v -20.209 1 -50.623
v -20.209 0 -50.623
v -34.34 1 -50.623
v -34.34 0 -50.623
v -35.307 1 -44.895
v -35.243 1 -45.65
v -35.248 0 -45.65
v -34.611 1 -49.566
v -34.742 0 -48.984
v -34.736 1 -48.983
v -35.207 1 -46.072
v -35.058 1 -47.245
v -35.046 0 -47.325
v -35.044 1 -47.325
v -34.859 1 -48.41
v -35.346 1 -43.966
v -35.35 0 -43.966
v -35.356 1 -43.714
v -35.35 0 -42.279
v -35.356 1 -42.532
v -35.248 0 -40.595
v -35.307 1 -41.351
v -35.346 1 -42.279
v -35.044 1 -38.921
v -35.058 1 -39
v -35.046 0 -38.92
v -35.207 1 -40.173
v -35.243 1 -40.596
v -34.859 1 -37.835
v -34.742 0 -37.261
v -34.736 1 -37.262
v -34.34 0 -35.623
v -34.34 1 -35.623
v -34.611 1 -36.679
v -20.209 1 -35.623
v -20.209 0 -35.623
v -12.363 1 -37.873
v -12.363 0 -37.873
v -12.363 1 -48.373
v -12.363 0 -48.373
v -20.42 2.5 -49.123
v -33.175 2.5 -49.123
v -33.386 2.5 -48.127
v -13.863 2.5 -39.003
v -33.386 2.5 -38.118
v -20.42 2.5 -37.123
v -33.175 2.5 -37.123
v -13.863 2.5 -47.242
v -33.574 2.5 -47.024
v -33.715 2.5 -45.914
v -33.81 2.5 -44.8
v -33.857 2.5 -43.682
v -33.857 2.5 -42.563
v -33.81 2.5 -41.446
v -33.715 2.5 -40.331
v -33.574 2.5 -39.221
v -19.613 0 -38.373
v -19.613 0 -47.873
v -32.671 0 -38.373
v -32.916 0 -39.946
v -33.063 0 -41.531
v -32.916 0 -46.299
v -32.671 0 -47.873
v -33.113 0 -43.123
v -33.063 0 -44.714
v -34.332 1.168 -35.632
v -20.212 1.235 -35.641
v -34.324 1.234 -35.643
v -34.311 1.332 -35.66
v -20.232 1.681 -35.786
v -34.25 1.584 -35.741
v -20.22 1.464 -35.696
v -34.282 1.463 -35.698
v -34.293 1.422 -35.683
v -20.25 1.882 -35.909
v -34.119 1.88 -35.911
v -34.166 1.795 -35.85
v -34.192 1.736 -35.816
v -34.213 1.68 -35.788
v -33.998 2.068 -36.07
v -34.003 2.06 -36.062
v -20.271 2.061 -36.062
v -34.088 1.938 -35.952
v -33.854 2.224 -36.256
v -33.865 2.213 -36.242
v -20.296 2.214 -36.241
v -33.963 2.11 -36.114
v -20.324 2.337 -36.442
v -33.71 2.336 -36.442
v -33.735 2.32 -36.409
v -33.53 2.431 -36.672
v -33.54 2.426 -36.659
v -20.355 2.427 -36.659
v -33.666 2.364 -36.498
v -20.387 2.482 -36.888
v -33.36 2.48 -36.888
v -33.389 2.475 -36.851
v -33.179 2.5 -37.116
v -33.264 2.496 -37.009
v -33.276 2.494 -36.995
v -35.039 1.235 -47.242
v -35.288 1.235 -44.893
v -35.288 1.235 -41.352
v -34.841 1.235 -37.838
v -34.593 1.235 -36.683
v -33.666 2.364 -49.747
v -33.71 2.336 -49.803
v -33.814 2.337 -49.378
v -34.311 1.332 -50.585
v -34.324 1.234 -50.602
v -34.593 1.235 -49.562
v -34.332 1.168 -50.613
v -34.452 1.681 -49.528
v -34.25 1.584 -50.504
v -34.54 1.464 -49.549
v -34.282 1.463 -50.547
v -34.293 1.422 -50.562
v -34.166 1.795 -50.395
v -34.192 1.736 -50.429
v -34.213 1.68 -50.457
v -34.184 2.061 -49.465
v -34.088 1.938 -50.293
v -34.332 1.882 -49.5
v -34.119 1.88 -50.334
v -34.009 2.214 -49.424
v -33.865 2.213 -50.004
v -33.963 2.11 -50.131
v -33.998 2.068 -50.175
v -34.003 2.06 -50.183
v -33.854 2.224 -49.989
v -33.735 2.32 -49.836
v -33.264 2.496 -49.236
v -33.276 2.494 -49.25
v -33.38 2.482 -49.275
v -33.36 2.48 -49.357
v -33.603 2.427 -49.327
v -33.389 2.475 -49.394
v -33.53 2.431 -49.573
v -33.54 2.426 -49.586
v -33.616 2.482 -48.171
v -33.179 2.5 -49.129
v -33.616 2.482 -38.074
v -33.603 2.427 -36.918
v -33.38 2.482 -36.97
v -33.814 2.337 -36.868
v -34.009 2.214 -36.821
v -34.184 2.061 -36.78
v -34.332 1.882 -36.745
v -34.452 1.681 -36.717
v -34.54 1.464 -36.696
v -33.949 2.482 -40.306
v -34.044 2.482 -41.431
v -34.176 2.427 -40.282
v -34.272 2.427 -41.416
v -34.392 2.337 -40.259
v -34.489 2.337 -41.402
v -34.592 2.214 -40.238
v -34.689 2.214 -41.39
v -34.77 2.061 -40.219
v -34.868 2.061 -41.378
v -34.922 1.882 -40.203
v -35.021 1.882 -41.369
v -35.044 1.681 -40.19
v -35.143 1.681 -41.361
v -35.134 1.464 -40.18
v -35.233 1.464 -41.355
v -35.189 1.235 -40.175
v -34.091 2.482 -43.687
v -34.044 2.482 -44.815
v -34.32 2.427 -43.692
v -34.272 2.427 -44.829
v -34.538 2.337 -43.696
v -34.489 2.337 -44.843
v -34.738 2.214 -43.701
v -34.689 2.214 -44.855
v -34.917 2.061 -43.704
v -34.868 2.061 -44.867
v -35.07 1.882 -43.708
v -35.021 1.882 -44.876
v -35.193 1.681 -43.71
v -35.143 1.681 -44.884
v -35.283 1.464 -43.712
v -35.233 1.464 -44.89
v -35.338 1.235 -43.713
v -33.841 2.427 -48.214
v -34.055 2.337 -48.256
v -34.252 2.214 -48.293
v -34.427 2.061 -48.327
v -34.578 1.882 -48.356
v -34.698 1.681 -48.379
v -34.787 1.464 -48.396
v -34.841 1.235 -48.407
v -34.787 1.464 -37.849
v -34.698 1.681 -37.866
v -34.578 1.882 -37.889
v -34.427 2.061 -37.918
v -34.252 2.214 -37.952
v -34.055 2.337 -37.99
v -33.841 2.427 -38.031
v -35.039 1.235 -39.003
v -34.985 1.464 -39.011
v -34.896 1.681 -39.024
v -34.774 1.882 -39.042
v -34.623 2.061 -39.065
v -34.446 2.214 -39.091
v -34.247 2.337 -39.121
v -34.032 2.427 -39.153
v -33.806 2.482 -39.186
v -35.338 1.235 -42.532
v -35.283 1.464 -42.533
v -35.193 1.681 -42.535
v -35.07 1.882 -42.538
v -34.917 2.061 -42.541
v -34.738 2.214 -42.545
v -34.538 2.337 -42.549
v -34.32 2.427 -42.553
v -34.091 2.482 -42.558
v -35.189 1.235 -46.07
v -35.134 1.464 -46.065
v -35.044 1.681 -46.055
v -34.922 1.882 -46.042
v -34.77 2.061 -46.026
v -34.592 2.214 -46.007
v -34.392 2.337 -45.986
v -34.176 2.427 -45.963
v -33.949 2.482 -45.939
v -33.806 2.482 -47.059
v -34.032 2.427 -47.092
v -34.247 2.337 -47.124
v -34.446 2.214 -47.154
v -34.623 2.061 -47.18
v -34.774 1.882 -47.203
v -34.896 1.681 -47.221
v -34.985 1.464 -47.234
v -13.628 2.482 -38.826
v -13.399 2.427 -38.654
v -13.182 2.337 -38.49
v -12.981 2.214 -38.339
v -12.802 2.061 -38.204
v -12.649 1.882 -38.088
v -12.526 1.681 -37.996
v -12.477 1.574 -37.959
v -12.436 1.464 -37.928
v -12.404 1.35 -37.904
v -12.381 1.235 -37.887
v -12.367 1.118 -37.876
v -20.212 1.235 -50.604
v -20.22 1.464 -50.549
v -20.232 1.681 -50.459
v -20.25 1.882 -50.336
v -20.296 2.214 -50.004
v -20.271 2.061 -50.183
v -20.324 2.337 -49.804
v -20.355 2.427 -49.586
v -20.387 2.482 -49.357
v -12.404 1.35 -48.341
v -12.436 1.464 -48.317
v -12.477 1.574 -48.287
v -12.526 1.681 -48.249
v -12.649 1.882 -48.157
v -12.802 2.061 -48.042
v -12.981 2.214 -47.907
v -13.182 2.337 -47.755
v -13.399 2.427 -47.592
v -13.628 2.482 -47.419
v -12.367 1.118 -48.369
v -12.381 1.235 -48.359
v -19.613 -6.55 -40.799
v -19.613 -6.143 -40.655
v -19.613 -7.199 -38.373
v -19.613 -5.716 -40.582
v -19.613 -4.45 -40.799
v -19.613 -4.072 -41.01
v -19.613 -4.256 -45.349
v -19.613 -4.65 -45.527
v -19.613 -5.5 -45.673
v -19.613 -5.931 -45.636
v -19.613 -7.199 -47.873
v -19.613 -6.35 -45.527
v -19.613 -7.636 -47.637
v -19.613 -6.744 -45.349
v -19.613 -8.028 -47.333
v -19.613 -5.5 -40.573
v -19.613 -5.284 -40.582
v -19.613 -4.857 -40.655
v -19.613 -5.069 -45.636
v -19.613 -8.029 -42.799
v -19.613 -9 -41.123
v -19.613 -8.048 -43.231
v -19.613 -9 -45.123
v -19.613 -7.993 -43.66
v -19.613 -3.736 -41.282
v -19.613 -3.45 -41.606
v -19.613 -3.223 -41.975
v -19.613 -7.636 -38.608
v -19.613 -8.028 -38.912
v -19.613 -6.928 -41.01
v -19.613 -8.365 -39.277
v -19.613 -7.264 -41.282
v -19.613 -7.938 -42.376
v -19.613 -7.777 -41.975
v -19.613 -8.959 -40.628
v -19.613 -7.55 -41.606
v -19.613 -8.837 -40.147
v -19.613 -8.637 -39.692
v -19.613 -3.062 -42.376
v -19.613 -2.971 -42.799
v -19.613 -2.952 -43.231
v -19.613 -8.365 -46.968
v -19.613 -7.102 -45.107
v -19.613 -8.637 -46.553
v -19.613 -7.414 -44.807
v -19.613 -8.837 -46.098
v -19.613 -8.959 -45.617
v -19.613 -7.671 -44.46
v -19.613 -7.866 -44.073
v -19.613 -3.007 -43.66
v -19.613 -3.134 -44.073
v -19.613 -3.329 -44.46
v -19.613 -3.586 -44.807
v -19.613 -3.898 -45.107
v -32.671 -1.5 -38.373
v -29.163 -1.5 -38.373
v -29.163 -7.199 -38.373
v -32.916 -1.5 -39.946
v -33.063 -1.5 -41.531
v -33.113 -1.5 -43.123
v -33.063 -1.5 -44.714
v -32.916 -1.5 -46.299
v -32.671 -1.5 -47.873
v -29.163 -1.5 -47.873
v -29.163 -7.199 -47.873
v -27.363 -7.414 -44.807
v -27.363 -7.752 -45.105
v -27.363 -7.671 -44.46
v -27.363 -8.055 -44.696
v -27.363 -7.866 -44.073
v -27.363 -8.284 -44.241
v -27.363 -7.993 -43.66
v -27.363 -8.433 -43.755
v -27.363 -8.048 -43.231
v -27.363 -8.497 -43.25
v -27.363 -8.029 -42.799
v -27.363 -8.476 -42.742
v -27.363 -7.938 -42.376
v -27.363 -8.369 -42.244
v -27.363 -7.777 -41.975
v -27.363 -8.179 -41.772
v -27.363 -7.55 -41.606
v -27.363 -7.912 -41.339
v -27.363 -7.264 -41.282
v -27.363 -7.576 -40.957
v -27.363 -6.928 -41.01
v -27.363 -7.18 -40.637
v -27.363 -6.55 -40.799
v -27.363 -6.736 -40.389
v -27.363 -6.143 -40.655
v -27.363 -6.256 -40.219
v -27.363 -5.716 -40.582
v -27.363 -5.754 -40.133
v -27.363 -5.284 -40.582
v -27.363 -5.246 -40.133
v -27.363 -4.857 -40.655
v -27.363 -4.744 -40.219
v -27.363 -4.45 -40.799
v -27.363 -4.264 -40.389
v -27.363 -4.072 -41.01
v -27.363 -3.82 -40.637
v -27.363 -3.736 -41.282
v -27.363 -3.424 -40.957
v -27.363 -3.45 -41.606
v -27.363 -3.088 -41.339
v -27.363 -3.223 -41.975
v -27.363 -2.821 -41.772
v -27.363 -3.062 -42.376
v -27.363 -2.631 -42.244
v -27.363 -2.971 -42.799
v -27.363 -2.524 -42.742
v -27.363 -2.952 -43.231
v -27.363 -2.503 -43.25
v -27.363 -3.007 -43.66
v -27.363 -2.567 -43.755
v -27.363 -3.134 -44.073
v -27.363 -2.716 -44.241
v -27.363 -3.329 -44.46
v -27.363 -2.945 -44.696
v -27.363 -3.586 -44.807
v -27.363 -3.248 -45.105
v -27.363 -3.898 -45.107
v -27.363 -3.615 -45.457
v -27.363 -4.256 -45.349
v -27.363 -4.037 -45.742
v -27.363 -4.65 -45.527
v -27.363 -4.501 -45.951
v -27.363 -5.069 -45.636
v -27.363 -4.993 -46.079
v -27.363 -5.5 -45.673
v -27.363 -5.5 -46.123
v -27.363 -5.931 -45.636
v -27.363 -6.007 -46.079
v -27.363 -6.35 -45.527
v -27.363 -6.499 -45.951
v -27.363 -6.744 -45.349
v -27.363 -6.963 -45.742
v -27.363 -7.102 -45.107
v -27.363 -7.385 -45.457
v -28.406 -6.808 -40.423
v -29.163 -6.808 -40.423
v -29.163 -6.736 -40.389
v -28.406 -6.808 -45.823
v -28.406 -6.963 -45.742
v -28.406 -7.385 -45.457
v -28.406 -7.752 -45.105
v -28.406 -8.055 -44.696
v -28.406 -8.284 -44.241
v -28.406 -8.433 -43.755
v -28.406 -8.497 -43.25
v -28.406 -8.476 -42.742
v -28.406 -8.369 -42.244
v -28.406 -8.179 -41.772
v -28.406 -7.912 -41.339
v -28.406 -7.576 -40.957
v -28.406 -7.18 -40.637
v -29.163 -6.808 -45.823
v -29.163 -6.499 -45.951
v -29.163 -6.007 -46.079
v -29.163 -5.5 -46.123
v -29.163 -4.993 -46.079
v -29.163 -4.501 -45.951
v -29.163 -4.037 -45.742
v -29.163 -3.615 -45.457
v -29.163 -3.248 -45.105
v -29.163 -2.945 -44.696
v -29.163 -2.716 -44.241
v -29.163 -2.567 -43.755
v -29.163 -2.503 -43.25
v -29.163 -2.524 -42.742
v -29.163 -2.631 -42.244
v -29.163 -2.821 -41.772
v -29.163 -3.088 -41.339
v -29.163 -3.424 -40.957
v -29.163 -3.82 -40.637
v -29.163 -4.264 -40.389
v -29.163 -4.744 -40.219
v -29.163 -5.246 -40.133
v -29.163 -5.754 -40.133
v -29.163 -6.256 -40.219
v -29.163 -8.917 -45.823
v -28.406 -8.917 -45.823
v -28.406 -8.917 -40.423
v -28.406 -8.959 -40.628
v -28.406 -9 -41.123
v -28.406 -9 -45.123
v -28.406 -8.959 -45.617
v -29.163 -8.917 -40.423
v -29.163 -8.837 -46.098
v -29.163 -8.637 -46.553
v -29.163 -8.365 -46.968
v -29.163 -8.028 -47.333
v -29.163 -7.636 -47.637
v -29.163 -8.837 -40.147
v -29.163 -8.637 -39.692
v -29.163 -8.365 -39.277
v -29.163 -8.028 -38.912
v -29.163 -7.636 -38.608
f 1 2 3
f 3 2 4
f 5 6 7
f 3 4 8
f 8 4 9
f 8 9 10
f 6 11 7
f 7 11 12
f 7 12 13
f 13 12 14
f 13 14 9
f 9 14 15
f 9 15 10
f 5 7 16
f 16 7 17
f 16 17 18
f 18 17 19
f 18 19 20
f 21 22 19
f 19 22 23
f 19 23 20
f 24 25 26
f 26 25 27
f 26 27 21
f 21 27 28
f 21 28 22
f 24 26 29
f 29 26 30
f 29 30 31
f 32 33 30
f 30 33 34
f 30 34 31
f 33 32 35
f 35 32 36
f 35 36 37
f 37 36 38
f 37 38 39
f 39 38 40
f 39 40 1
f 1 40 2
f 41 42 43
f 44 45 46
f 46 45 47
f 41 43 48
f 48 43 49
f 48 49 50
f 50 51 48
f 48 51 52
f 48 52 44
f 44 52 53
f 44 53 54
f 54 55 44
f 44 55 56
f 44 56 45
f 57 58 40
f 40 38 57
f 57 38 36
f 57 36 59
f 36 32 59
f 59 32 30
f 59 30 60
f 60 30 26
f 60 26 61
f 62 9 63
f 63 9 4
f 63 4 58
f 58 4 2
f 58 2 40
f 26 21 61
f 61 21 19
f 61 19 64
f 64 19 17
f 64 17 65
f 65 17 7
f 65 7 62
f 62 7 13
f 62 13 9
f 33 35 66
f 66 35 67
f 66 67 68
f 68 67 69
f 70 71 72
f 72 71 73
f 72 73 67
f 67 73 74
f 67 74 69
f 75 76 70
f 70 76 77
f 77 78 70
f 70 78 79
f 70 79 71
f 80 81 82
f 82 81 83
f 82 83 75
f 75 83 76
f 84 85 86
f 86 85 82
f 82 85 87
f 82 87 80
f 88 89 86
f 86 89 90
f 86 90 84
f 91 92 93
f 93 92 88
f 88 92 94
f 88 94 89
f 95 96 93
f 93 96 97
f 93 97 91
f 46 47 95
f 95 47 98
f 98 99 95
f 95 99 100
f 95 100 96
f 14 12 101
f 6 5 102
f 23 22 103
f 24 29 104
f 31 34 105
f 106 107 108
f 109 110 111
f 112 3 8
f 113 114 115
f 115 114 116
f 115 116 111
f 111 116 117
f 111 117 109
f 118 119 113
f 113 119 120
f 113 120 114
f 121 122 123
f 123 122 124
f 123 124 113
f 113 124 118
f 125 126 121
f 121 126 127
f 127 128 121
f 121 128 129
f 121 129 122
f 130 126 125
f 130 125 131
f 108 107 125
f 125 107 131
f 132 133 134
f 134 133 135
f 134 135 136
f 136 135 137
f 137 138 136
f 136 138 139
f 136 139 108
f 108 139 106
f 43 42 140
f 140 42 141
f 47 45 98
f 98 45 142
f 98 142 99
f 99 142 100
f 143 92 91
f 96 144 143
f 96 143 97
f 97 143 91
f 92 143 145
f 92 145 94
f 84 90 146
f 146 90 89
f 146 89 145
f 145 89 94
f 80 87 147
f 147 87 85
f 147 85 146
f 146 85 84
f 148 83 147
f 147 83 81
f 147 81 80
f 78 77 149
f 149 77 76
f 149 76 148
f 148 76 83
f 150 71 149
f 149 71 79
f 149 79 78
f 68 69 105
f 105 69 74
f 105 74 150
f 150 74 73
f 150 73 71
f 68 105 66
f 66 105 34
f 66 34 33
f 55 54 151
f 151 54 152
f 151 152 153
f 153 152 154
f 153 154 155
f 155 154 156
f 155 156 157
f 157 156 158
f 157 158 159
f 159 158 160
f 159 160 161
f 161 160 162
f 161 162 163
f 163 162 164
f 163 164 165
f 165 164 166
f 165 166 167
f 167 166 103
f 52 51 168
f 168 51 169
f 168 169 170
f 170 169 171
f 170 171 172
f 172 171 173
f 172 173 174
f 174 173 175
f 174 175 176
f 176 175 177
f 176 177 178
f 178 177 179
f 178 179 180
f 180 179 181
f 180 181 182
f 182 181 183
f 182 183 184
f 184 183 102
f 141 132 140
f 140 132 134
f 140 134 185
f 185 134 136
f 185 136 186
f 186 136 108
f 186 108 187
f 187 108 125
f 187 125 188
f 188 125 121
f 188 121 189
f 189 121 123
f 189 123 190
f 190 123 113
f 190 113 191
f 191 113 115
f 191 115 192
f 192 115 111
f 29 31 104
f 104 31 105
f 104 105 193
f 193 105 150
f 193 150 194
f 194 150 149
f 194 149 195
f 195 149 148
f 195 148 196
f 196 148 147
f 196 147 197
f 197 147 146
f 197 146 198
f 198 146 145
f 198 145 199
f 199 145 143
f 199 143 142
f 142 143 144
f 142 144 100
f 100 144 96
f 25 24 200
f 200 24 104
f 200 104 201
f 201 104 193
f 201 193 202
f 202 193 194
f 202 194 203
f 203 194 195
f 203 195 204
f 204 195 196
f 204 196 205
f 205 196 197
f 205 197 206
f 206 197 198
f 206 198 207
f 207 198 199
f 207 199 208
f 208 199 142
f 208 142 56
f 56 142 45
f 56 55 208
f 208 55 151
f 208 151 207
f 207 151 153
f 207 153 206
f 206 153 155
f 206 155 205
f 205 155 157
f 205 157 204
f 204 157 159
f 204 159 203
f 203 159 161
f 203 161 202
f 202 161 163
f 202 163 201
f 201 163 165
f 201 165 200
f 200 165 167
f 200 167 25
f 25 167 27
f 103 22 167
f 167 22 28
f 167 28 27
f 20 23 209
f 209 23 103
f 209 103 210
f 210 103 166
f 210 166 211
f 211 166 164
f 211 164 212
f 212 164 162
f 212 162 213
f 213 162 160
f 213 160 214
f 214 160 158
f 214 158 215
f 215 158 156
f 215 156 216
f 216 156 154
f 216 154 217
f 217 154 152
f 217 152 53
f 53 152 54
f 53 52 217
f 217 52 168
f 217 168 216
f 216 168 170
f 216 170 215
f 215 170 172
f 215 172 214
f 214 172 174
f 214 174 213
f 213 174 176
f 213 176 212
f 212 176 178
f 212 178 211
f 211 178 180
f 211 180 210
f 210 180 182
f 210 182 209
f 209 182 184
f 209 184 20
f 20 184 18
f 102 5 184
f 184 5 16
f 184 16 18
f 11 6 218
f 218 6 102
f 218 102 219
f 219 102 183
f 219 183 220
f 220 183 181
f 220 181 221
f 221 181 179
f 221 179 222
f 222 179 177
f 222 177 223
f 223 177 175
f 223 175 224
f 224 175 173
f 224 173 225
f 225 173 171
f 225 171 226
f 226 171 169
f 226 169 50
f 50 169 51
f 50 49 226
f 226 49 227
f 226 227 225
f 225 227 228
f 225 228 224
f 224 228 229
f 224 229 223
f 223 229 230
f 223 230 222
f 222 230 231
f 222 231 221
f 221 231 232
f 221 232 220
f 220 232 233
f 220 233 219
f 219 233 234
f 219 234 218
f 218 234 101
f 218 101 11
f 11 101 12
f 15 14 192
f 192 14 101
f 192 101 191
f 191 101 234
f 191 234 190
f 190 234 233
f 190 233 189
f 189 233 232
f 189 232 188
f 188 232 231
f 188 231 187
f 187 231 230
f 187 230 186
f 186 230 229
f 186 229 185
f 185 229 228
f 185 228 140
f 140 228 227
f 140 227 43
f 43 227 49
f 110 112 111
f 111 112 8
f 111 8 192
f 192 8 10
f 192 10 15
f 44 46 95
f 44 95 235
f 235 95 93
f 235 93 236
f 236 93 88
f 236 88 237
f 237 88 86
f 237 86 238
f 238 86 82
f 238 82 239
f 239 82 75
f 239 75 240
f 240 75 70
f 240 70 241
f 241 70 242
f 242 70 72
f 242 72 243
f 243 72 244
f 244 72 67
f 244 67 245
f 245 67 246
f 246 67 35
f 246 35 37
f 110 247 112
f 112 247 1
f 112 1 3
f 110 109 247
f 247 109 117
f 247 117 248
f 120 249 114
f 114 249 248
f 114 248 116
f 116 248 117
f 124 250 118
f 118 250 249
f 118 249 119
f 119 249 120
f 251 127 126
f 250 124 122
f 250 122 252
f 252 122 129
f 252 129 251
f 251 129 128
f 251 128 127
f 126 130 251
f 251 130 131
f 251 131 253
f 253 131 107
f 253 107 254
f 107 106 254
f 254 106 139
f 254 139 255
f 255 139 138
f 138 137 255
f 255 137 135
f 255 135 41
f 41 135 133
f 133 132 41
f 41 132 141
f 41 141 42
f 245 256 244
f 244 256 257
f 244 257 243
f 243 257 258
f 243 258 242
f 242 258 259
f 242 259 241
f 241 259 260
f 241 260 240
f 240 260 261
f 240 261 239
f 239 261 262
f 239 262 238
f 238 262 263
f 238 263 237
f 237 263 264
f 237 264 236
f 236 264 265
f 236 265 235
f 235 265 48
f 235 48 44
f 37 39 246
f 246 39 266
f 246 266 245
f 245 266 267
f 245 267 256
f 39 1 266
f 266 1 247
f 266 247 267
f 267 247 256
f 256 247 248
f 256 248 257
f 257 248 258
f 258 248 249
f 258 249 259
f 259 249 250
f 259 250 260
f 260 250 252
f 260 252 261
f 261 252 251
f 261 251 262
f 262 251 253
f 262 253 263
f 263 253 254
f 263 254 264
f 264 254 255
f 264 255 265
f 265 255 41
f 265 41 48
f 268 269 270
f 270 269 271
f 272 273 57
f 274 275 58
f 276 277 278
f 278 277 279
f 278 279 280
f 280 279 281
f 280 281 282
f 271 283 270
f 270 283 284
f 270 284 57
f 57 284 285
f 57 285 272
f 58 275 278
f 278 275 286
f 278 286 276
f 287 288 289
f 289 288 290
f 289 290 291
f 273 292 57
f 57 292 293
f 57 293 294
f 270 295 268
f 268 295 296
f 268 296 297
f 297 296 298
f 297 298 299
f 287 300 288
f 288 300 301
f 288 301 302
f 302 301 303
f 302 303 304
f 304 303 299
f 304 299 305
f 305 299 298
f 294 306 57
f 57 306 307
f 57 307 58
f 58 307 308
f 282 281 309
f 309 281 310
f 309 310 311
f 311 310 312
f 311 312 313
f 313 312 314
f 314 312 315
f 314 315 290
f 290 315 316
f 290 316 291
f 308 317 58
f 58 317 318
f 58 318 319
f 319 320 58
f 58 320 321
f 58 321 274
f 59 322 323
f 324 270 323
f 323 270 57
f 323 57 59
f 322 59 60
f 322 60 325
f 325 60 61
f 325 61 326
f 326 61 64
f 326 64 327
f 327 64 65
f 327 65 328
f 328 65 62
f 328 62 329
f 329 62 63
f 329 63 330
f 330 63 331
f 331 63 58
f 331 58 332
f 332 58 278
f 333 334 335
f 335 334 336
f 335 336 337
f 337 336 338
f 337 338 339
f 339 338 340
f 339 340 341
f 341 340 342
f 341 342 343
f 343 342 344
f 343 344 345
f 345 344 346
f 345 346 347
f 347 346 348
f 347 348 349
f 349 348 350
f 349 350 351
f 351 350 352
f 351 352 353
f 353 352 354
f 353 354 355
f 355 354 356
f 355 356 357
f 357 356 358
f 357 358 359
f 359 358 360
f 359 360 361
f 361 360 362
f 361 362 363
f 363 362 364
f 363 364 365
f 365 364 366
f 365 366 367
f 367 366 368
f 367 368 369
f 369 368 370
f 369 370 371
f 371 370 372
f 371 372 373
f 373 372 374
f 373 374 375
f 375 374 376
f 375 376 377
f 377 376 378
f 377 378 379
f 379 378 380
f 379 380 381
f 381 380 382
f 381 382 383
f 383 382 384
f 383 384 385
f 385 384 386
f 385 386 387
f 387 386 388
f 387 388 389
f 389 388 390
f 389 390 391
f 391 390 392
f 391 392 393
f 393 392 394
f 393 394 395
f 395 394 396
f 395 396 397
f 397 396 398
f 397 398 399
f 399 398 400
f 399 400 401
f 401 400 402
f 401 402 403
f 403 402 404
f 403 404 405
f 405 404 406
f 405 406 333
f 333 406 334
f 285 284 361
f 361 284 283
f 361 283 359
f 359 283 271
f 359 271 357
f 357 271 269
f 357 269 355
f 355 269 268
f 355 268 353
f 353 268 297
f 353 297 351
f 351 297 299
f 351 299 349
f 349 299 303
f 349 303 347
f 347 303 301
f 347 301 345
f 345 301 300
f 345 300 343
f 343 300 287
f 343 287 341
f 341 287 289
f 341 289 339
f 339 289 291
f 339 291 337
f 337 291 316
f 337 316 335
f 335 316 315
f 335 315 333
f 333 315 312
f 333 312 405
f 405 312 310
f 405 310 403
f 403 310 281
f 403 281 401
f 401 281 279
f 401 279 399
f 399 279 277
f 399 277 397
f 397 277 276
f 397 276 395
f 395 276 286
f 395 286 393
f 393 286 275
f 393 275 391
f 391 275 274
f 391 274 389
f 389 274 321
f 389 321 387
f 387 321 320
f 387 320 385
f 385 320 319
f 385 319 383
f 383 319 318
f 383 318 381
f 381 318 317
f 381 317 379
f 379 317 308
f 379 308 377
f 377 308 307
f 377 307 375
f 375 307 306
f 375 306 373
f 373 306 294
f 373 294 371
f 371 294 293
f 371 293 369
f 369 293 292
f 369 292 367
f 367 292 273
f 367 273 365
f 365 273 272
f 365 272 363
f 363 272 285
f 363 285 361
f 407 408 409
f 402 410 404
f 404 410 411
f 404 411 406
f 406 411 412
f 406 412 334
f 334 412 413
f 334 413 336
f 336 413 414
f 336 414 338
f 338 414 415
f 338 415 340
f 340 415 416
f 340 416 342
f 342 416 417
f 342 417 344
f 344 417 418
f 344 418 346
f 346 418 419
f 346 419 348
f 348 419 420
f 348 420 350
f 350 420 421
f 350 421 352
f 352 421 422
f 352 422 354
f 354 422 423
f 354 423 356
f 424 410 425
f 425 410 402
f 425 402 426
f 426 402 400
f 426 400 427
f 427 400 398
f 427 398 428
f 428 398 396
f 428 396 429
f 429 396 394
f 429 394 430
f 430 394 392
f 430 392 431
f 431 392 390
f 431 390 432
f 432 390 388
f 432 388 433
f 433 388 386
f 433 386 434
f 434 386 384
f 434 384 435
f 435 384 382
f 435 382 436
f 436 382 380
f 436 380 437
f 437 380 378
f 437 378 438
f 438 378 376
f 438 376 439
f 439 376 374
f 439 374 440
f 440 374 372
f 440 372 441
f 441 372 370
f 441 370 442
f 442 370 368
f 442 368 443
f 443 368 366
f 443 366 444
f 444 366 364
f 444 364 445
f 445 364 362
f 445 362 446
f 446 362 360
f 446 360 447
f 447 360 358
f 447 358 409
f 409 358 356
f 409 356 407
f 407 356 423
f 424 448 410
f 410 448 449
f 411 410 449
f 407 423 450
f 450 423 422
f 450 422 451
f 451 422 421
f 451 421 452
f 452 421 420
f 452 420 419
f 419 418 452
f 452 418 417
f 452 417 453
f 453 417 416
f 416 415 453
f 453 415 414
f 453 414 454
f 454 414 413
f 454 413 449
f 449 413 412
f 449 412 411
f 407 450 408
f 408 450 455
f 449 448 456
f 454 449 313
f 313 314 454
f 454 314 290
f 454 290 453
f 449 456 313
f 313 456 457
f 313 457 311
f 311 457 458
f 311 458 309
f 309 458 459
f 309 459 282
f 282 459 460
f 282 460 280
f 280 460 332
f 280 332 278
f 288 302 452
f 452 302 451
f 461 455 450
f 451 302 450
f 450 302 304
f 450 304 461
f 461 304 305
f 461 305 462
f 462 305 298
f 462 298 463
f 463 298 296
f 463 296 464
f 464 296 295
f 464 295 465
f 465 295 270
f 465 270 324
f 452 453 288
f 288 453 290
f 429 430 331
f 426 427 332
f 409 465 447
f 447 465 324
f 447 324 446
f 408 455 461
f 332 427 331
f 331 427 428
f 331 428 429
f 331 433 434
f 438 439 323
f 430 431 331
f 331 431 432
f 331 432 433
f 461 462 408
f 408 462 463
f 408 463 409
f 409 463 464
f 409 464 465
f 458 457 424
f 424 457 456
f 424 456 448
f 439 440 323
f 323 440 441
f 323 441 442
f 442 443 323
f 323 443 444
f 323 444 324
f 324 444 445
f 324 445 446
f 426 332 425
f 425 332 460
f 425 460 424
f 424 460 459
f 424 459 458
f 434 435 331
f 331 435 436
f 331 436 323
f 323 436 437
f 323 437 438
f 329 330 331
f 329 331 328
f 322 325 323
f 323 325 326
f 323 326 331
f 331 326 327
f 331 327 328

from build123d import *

# Parameters (mm, degrees)
BOSS_EXTRUDE1_DEPTH      = 2.5
BOSS_EXTRUDE2_DEPTH      = 1.5
BOSS_EXTRUDE2_DEPTH_BACK = 1.5
FILLET1_R                = 1.5
SKETCH5_W                = 9.8
SKETCH5_H                = 10
BOSS_EXTRUDE3_DEPTH      = 7.5
SKETCH6_R                = 2.55
CUT_EXTRUDE1_DEPTH       = 8
FILLET2_R                = 3
SKETCH8_R                = 3
SKETCH8_R_2              = 2.6
BOSS_EXTRUDE4_DEPTH      = 0.8
SKETCH9_W                = 0.75667274
SKETCH9_H                = 5.4
CUT_EXTRUDE3_DEPTH       = 3
SKETCH10_R               = 3
CUT_EXTRUDE4_DEPTH       = 3
CUT_EXTRUDE5_DEPTH       = 10


with BuildPart() as part:
    # Sketch1 → Boss-Extrude1 (new body)
    with BuildSketch(Plane(origin=(0, 0, 0), x_dir=(1, 0, 0), z_dir=(0, 1, 0))):
        with BuildLine():
            Line((-20.209371097, 50.622586501), (-32.257467167, 50.622586501))
            ThreePointArc((-32.257467167, 50.622586501), (-33.362688598, 43.122586501), (-32.257467167, 35.622586501))
            Line((-32.257467167, 35.622586501), (-20.209371097, 35.622586501))
            Line((-20.209371097, 35.622586501), (-12.362688598, 37.872586501))
            Line((-12.362688598, 37.872586501), (-12.362688598, 48.372586501))
            Line((-12.362688598, 48.372586501), (-20.209371097, 50.622586501))
        make_face()
        with BuildLine():
            Line((-32.257467167, 50.622586501), (-34.339530518, 50.622586501))
            ThreePointArc((-34.339530518, 50.622586501), (-35.362688598, 43.122586501), (-34.339530518, 35.622586501))
            Line((-34.339530518, 35.622586501), (-32.257467167, 35.622586501))
            ThreePointArc((-32.257467167, 35.622586501), (-33.362688598, 43.122586501), (-32.257467167, 50.622586501))
        make_face()
    extrude(amount=BOSS_EXTRUDE1_DEPTH)

    # Sketch4 → Boss-Extrude2 (add, two sides)
    with BuildSketch(Plane.XZ) as boss_extrude2_sk:
        with BuildLine():
            Line((-19.362688598, -38.122586501), (-32.877390242, -38.122586501))
            ThreePointArc((-32.877390242, -38.122586501), (-33.362688598, -43.122586501), (-32.877390242, -48.122586501))
            Line((-32.877390242, -48.122586501), (-19.362688598, -48.122586501))
            Line((-19.362688598, -48.122586501), (-19.362688598, -38.122586501))
        make_face()
    extrude(amount=BOSS_EXTRUDE2_DEPTH)
    extrude(boss_extrude2_sk.sketch, amount=-BOSS_EXTRUDE2_DEPTH_BACK)

    # Fillet1
    fillet1_edges = [part.edges().sort_by_distance(p)[0] for p in [
        (-27.274450808, 2.5, -35.622586501),
        (-16.286029847, 2.5, -36.747586501),
        (-12.362688598, 2.5, -43.122586501),
        (-16.286029847, 2.5, -49.497586501),
        (-27.274450808, 2.5, -50.622586501),
        (-35.362688598, 2.5, -43.122586501),
    ]]
    fillet(fillet1_edges, radius=FILLET1_R)

    # Sketch5 → Boss-Extrude3 (add)
    with BuildSketch(Plane.XZ.offset(1.5)):
        with Locations((-24.262688598, -43.122586501)):
            Rectangle(SKETCH5_W, SKETCH5_H)
    extrude(amount=BOSS_EXTRUDE3_DEPTH)

    # Sketch6 → Cut-Extrude1 (cut)
    with BuildSketch(Plane(origin=(-19.362688598, 0, 0), x_dir=(0, 0, -1), z_dir=(1, 0, 0))):
        with Locations((43.122586501, -5.5)):
            Circle(SKETCH6_R)
    extrude(amount=-CUT_EXTRUDE1_DEPTH, mode=Mode.SUBTRACT)

    # Fillet2
    fillet2_edges = [part.edges().sort_by_distance(p)[0] for p in [
        (-24.262688598, -9, -38.122586501),
        (-24.262688598, -9, -48.122586501),
    ]]
    fillet(fillet2_edges, radius=FILLET2_R)

    # Sketch8 → Boss-Extrude4 (add)
    with BuildSketch(Plane.ZY.offset(29.162688598)):
        with Locations((-43.122586501, -5.5)):
            Circle(SKETCH8_R)
        with Locations((-43.122586501, -5.5)):
            Circle(SKETCH8_R_2, mode=Mode.SUBTRACT)
    extrude(amount=-BOSS_EXTRUDE4_DEPTH)

    # Sketch9 → Cut-Extrude3 (cut)
    with BuildSketch(Plane(origin=(0, -9, 0), x_dir=(-1, 0, 0), z_dir=(0, -1, 0))):
        with Locations((28.784352228, 43.122586501)):
            Rectangle(SKETCH9_W, SKETCH9_H)
    extrude(amount=-CUT_EXTRUDE3_DEPTH, mode=Mode.SUBTRACT)

    # Sketch10 → Cut-Extrude4 (cut)
    with BuildSketch(Plane(origin=(-27.362688598, 0, 0), x_dir=(0, 0, -1), z_dir=(1, 0, 0))):
        with Locations((43.122586501, -5.5)):
            Circle(SKETCH10_R)
    extrude(amount=-CUT_EXTRUDE4_DEPTH, mode=Mode.SUBTRACT)

    # Sketch11 → Cut-Extrude5 (cut)
    with BuildSketch(Plane.XZ):
        with BuildLine():
            Line((-19.362688598, -38.122586501), (-32.877390242, -38.122586501))
            ThreePointArc((-32.877390242, -38.122586501), (-33.362688598, -43.122586501), (-32.877390242, -48.122586501))
            Line((-32.877390242, -48.122586501), (-19.362688598, -48.122586501))
            Line((-19.362688598, -48.122586501), (-19.362688598, -38.122586501))
        make_face()
        with BuildLine():
            Line((-19.612688598, -38.372586501), (-32.670790068, -38.372586501))
            ThreePointArc((-32.670790068, -38.372586501), (-33.112688598, -43.122586501), (-32.670790068, -47.872586501))
            Line((-32.670790068, -47.872586501), (-19.612688598, -47.872586501))
            Line((-19.612688598, -47.872586501), (-19.612688598, -38.372586501))
        make_face(mode=Mode.SUBTRACT)
    extrude(amount=CUT_EXTRUDE5_DEPTH, mode=Mode.SUBTRACT)


solid = part.part
